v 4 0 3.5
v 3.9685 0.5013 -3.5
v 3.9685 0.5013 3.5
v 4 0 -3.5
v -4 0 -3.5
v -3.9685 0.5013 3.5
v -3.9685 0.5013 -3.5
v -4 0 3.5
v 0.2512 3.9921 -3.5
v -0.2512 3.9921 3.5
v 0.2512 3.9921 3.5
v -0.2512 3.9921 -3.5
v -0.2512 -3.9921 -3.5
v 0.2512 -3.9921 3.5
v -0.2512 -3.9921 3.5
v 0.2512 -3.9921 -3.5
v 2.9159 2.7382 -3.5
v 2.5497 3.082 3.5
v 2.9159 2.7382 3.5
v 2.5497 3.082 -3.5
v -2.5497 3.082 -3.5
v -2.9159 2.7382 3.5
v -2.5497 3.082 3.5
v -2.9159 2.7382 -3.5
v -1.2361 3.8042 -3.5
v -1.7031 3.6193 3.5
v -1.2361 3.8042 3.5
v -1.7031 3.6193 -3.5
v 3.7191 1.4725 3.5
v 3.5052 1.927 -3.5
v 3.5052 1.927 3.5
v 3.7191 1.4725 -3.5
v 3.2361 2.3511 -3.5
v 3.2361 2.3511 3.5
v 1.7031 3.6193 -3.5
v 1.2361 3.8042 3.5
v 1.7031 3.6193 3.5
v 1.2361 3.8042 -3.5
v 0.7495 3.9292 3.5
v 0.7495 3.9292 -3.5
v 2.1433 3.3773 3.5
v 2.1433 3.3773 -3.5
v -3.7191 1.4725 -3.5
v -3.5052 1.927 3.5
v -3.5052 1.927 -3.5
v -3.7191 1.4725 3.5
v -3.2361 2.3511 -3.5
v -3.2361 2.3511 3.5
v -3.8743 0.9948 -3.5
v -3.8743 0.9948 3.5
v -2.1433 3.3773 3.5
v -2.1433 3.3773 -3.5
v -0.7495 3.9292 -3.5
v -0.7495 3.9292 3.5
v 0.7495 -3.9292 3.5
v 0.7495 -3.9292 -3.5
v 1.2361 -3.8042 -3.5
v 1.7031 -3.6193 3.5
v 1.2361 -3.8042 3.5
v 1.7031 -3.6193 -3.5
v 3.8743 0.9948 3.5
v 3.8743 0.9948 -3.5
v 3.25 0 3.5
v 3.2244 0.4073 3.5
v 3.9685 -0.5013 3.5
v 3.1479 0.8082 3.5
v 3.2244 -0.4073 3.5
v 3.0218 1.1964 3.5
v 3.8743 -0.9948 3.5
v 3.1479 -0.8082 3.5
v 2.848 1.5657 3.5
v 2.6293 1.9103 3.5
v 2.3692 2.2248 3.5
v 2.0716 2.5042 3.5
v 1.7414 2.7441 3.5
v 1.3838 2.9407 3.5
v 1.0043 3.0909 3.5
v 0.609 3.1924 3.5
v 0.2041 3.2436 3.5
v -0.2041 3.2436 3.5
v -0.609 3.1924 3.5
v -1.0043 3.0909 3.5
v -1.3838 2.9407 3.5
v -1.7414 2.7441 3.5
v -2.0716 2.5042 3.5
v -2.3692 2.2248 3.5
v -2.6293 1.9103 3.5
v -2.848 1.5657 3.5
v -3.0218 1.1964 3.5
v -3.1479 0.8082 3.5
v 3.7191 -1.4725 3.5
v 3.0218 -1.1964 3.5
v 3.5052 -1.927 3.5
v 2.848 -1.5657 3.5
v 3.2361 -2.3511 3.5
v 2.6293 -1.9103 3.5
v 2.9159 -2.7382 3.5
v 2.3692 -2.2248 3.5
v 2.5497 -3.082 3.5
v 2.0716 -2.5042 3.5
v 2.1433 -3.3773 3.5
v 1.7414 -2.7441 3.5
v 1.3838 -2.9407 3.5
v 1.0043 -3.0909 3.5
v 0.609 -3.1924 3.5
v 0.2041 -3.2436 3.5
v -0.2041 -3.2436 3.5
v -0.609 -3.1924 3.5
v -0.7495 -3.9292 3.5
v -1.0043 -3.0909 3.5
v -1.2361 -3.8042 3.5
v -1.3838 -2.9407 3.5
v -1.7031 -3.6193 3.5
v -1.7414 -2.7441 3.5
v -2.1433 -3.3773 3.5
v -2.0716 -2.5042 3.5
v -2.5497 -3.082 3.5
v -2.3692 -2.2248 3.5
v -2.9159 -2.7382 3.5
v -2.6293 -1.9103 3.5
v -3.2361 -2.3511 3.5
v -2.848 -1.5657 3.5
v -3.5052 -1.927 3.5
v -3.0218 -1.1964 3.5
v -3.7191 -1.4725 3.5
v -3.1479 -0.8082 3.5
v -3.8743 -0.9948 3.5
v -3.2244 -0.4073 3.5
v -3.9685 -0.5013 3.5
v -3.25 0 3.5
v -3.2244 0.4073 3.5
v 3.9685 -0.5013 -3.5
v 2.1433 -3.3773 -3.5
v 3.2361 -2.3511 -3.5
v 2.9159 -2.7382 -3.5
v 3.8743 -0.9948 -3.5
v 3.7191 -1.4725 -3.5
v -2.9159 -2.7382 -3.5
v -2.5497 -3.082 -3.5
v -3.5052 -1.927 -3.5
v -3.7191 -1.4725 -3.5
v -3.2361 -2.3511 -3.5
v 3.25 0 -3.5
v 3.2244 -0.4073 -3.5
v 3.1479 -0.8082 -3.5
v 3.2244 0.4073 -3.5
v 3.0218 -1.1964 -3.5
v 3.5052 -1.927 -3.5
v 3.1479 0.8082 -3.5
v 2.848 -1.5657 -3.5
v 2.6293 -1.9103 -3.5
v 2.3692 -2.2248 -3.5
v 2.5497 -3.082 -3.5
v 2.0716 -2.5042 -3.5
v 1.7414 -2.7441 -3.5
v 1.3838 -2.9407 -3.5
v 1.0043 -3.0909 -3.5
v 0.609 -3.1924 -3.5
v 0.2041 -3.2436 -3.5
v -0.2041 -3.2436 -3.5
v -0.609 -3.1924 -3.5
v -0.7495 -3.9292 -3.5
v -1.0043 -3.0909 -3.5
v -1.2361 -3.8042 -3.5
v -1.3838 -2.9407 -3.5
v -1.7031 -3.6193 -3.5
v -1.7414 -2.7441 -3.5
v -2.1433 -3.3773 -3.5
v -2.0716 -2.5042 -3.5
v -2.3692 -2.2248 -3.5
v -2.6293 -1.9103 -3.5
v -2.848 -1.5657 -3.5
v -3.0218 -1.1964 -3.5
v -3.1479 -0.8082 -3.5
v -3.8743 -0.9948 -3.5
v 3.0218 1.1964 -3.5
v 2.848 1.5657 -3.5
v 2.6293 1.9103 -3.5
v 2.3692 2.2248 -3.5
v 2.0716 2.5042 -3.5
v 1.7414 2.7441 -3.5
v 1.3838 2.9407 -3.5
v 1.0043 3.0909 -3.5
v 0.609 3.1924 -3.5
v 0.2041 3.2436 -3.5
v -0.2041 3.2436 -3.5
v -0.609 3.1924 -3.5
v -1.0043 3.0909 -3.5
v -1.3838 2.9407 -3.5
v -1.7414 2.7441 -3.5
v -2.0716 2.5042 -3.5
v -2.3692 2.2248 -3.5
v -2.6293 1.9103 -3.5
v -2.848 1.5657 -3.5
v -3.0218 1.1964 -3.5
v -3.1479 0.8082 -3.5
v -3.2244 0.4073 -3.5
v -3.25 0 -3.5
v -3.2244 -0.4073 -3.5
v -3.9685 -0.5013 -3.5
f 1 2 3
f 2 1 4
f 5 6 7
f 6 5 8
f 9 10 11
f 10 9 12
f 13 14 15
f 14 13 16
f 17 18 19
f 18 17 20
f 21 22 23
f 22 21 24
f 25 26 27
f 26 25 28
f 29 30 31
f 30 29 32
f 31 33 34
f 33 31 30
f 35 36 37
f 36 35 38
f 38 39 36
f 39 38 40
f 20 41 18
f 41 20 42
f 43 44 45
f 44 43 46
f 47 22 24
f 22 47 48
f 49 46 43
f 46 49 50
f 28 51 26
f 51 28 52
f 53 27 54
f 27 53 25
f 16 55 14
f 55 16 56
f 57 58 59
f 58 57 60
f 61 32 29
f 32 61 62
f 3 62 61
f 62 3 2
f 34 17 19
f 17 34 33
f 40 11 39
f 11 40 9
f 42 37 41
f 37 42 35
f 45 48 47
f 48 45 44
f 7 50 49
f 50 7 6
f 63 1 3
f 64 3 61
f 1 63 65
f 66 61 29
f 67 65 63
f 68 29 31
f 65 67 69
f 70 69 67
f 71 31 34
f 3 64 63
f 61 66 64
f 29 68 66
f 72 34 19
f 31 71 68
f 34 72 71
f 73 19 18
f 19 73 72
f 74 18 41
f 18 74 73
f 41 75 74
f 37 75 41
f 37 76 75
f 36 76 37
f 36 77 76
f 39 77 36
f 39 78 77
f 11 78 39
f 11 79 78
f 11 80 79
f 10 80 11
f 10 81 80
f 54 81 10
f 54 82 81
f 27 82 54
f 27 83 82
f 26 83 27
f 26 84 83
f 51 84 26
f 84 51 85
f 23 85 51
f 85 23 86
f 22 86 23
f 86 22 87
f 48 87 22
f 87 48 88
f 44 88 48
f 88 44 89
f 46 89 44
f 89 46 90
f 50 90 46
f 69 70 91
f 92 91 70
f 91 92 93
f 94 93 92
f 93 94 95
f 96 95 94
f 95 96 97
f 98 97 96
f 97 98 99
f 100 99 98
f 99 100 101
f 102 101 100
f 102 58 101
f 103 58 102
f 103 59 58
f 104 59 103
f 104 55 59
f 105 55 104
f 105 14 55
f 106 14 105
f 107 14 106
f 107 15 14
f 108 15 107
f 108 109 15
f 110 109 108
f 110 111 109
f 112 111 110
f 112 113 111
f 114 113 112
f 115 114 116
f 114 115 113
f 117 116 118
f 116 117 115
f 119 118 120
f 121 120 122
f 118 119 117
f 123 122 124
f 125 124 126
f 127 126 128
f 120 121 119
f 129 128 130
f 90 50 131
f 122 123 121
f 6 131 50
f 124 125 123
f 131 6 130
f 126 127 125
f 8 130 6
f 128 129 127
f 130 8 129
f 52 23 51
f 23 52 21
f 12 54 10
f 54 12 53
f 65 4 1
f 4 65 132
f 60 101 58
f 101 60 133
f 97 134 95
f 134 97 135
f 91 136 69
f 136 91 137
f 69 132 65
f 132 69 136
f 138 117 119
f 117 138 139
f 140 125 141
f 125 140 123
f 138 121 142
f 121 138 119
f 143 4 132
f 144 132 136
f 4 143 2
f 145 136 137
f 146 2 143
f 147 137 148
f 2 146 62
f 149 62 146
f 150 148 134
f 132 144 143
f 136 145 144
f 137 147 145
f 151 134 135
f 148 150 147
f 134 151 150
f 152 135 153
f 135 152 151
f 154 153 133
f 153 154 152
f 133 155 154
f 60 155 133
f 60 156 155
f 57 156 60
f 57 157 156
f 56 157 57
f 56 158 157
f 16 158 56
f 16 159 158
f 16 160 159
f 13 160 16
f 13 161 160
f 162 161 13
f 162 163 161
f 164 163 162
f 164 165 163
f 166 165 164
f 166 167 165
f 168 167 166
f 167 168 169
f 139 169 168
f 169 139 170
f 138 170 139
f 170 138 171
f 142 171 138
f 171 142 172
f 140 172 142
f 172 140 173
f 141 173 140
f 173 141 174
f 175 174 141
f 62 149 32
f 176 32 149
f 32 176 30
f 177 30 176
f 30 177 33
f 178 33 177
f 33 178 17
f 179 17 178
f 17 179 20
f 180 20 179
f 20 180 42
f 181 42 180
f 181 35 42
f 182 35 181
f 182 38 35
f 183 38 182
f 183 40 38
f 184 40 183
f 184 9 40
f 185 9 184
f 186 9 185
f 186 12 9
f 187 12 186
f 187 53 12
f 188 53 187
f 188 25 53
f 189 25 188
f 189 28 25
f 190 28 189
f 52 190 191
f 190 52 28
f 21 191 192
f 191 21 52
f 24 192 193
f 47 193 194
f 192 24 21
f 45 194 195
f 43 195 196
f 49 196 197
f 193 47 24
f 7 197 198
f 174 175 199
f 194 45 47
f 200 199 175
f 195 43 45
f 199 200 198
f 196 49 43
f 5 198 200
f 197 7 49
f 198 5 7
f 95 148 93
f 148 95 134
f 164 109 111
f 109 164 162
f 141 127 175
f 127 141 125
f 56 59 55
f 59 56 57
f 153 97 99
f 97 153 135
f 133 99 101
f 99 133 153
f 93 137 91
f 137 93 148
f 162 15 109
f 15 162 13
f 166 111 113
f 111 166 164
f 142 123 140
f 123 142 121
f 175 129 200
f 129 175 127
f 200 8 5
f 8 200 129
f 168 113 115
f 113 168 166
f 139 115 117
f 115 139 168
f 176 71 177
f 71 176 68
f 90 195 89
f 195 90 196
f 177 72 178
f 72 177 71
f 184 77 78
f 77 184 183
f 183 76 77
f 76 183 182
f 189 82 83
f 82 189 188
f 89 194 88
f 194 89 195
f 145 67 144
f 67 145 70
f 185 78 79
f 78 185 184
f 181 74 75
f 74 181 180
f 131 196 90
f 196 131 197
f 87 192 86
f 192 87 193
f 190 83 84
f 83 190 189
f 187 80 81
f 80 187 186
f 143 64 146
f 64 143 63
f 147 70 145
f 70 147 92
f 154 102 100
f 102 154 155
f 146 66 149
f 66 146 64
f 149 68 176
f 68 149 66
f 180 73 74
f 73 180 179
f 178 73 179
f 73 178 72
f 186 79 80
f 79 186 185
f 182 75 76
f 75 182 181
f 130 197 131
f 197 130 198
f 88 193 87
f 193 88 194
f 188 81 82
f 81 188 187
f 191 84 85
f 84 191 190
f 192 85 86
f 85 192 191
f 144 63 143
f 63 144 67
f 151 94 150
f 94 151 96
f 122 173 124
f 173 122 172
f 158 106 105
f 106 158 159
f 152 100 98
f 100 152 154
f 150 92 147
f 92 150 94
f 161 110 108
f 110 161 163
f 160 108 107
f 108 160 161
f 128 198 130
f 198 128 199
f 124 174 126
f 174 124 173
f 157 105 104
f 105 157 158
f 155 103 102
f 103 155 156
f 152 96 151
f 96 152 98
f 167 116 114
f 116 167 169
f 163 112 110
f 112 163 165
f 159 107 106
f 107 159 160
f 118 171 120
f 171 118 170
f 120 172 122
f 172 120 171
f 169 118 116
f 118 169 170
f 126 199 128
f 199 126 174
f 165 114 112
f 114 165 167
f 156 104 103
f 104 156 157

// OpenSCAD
$fn = 50;


difference() {
	union() {
		translate(v = [0, 0, -3.5000000000]) {
			cylinder(h = 7, r = 4.0000000000);
		}
	}
	union() {
		translate(v = [0, 0, -100.0000000000]) {
			cylinder(h = 200, r = 3.2500000000);
		}
	}
}
